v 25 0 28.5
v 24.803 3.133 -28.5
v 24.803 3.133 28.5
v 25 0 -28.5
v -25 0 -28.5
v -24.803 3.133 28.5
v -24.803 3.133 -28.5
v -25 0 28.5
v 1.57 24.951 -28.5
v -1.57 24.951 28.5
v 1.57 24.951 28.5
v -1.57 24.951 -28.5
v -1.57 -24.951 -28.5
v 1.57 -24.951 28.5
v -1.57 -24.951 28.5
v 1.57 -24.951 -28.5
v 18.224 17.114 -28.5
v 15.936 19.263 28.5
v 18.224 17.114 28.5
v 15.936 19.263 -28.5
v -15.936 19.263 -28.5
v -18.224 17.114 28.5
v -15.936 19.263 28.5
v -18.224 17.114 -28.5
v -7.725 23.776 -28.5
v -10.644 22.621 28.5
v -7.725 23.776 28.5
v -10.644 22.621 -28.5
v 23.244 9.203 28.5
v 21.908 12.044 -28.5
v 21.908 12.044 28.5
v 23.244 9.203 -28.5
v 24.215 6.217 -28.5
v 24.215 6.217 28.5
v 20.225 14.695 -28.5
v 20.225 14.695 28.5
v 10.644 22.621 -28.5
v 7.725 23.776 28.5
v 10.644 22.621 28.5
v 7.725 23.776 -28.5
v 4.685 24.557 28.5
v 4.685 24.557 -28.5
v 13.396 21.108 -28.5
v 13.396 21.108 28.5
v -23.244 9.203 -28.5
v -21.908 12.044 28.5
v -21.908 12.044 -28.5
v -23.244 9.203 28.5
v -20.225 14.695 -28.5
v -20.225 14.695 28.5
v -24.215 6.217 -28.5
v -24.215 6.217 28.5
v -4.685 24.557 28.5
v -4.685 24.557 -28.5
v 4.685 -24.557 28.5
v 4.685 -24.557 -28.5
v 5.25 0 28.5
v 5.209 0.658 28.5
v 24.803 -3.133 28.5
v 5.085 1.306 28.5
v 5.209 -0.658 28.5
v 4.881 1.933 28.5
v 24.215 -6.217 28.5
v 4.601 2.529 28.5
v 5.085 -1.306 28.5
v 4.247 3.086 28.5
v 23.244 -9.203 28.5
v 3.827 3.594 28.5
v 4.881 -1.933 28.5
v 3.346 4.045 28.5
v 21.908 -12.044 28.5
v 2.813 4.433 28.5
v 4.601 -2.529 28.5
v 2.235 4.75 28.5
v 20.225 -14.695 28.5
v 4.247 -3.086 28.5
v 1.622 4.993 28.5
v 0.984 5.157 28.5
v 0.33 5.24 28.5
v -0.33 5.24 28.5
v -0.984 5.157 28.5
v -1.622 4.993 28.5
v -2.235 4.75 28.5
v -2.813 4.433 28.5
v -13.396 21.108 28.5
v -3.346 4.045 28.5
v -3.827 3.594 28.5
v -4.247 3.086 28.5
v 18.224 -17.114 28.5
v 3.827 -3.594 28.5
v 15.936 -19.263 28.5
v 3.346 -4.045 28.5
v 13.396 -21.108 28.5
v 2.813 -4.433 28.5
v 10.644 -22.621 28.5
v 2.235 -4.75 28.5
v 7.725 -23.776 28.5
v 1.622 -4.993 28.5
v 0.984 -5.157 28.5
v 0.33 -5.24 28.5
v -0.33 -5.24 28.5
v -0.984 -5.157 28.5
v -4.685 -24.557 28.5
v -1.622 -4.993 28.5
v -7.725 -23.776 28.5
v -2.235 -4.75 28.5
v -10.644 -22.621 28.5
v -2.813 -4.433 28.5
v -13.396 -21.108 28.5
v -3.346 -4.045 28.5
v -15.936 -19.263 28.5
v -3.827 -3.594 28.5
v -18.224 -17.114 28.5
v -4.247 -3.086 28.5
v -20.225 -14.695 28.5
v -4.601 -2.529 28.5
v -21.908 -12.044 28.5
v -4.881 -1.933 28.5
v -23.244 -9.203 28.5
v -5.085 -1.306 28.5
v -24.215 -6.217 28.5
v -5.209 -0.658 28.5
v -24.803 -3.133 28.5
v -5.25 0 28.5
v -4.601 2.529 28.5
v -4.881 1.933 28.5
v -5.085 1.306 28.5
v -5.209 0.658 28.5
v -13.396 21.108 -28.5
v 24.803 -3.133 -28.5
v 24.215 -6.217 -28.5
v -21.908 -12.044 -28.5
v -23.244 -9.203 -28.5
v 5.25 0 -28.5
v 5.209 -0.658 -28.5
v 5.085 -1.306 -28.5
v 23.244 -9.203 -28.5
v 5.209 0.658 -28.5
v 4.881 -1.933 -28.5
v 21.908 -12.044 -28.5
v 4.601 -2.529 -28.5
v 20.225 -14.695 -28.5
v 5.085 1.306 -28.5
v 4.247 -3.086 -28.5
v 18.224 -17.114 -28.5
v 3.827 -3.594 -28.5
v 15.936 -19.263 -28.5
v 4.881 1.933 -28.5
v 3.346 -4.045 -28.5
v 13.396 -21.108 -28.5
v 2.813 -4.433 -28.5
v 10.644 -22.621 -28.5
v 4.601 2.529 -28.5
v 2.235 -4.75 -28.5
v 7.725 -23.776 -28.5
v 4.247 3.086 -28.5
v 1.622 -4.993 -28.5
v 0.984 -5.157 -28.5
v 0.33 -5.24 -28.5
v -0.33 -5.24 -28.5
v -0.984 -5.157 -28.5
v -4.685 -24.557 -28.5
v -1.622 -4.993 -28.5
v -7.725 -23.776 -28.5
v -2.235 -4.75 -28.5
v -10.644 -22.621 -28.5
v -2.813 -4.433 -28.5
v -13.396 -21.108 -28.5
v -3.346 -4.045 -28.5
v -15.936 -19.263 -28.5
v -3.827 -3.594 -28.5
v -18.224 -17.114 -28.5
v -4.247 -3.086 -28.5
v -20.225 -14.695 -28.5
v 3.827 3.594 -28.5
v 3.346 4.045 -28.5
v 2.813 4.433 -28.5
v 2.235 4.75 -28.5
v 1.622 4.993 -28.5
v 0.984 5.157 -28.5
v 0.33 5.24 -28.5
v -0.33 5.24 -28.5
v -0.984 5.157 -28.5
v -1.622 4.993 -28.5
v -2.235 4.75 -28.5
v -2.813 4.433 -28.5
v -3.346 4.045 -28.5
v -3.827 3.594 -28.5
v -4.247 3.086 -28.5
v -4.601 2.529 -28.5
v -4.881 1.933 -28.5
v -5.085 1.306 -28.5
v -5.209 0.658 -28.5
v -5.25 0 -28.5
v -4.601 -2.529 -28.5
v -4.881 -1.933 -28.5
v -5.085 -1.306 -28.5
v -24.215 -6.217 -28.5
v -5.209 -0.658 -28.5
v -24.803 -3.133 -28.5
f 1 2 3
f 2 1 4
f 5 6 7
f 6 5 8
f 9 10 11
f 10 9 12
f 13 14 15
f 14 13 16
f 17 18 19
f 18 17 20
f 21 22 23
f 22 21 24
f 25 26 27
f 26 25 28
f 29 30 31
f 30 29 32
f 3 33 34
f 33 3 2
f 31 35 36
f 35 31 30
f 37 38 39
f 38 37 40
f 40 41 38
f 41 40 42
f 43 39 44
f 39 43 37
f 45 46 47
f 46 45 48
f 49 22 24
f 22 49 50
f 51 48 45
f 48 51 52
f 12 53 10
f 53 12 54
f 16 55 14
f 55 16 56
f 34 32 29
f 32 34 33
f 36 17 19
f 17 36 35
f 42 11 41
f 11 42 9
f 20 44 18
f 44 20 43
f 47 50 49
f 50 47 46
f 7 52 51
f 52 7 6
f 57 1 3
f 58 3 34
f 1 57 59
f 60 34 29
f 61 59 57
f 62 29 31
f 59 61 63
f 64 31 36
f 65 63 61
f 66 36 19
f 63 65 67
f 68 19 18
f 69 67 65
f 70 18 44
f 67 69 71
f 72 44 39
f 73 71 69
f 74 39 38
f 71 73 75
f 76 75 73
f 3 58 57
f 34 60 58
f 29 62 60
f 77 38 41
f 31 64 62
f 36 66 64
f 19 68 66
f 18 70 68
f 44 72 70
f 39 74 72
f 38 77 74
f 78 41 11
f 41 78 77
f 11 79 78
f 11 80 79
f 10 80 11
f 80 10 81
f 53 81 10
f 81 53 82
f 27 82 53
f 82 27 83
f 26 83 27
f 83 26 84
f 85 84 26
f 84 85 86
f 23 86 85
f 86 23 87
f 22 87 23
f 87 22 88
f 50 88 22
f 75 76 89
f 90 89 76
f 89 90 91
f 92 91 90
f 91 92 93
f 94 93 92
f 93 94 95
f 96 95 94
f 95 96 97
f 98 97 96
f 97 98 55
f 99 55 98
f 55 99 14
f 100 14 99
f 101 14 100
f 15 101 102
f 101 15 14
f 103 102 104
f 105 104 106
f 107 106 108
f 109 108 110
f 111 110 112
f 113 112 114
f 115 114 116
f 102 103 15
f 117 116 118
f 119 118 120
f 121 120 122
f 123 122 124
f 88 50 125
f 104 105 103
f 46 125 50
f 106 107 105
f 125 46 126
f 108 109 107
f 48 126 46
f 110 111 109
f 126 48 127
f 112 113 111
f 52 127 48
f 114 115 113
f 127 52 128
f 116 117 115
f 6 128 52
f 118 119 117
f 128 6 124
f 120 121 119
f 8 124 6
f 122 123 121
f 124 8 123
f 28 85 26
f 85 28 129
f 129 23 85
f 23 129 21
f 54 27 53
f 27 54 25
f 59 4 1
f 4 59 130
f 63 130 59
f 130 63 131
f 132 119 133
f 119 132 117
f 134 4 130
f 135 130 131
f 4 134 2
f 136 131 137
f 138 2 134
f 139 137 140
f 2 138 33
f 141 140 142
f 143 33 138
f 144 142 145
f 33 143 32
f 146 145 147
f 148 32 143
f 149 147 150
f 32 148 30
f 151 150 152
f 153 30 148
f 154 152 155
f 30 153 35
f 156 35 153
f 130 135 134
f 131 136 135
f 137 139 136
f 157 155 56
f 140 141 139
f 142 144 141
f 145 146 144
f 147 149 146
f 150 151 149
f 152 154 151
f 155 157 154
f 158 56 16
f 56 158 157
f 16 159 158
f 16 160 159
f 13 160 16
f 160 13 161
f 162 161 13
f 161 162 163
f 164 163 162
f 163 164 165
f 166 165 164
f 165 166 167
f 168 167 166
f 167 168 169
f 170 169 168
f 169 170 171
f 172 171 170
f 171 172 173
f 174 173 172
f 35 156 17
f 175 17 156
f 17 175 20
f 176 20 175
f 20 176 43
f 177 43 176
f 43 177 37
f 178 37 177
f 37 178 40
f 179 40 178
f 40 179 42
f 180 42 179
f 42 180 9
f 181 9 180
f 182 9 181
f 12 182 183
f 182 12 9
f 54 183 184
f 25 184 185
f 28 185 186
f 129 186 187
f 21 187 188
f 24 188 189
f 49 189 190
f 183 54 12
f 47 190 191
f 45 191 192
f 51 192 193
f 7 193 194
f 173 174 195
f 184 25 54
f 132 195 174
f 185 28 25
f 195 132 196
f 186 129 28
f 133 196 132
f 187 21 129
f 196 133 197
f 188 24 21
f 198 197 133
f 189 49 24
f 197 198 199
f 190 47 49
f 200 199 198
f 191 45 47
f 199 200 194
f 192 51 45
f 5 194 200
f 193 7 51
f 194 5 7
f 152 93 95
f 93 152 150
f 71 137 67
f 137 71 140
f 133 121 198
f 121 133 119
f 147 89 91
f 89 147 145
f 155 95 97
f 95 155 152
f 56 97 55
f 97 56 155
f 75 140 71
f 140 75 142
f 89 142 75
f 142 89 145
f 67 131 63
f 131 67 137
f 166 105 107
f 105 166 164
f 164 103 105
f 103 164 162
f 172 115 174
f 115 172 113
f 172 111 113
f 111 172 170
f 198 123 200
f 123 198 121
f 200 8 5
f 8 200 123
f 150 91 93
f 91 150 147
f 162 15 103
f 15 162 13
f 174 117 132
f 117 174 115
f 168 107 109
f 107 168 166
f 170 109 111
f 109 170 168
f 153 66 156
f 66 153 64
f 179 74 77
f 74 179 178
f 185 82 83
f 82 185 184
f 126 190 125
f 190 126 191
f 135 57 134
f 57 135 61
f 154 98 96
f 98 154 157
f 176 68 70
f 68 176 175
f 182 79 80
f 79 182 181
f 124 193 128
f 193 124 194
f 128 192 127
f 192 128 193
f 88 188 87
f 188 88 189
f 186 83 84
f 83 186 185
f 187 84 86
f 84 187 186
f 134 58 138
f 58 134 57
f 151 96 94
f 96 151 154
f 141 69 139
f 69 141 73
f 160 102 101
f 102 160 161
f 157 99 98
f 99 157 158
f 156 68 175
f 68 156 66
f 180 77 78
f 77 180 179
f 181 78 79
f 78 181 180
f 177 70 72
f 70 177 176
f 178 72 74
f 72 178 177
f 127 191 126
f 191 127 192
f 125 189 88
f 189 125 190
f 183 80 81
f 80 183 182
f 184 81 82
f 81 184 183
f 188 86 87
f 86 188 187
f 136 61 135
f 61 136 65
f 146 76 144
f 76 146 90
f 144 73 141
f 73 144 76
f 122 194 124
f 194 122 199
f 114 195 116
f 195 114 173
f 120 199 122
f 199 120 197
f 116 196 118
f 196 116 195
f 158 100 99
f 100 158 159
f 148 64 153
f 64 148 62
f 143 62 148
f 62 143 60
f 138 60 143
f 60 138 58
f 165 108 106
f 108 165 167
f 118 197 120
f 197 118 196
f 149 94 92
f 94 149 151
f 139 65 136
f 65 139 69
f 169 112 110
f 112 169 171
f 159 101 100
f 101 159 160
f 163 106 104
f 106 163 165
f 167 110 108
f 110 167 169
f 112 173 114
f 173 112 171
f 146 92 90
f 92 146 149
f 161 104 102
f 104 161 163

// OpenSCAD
$fn = 50;


difference() {
	union() {
		translate(v = [0, 0, -28.5000000000]) {
			cylinder(h = 57, r = 25.0000000000);
		}
	}
	union() {
		translate(v = [0, 0, -100.0000000000]) {
			cylinder(h = 200, r = 5.2500000000);
		}
	}
}
